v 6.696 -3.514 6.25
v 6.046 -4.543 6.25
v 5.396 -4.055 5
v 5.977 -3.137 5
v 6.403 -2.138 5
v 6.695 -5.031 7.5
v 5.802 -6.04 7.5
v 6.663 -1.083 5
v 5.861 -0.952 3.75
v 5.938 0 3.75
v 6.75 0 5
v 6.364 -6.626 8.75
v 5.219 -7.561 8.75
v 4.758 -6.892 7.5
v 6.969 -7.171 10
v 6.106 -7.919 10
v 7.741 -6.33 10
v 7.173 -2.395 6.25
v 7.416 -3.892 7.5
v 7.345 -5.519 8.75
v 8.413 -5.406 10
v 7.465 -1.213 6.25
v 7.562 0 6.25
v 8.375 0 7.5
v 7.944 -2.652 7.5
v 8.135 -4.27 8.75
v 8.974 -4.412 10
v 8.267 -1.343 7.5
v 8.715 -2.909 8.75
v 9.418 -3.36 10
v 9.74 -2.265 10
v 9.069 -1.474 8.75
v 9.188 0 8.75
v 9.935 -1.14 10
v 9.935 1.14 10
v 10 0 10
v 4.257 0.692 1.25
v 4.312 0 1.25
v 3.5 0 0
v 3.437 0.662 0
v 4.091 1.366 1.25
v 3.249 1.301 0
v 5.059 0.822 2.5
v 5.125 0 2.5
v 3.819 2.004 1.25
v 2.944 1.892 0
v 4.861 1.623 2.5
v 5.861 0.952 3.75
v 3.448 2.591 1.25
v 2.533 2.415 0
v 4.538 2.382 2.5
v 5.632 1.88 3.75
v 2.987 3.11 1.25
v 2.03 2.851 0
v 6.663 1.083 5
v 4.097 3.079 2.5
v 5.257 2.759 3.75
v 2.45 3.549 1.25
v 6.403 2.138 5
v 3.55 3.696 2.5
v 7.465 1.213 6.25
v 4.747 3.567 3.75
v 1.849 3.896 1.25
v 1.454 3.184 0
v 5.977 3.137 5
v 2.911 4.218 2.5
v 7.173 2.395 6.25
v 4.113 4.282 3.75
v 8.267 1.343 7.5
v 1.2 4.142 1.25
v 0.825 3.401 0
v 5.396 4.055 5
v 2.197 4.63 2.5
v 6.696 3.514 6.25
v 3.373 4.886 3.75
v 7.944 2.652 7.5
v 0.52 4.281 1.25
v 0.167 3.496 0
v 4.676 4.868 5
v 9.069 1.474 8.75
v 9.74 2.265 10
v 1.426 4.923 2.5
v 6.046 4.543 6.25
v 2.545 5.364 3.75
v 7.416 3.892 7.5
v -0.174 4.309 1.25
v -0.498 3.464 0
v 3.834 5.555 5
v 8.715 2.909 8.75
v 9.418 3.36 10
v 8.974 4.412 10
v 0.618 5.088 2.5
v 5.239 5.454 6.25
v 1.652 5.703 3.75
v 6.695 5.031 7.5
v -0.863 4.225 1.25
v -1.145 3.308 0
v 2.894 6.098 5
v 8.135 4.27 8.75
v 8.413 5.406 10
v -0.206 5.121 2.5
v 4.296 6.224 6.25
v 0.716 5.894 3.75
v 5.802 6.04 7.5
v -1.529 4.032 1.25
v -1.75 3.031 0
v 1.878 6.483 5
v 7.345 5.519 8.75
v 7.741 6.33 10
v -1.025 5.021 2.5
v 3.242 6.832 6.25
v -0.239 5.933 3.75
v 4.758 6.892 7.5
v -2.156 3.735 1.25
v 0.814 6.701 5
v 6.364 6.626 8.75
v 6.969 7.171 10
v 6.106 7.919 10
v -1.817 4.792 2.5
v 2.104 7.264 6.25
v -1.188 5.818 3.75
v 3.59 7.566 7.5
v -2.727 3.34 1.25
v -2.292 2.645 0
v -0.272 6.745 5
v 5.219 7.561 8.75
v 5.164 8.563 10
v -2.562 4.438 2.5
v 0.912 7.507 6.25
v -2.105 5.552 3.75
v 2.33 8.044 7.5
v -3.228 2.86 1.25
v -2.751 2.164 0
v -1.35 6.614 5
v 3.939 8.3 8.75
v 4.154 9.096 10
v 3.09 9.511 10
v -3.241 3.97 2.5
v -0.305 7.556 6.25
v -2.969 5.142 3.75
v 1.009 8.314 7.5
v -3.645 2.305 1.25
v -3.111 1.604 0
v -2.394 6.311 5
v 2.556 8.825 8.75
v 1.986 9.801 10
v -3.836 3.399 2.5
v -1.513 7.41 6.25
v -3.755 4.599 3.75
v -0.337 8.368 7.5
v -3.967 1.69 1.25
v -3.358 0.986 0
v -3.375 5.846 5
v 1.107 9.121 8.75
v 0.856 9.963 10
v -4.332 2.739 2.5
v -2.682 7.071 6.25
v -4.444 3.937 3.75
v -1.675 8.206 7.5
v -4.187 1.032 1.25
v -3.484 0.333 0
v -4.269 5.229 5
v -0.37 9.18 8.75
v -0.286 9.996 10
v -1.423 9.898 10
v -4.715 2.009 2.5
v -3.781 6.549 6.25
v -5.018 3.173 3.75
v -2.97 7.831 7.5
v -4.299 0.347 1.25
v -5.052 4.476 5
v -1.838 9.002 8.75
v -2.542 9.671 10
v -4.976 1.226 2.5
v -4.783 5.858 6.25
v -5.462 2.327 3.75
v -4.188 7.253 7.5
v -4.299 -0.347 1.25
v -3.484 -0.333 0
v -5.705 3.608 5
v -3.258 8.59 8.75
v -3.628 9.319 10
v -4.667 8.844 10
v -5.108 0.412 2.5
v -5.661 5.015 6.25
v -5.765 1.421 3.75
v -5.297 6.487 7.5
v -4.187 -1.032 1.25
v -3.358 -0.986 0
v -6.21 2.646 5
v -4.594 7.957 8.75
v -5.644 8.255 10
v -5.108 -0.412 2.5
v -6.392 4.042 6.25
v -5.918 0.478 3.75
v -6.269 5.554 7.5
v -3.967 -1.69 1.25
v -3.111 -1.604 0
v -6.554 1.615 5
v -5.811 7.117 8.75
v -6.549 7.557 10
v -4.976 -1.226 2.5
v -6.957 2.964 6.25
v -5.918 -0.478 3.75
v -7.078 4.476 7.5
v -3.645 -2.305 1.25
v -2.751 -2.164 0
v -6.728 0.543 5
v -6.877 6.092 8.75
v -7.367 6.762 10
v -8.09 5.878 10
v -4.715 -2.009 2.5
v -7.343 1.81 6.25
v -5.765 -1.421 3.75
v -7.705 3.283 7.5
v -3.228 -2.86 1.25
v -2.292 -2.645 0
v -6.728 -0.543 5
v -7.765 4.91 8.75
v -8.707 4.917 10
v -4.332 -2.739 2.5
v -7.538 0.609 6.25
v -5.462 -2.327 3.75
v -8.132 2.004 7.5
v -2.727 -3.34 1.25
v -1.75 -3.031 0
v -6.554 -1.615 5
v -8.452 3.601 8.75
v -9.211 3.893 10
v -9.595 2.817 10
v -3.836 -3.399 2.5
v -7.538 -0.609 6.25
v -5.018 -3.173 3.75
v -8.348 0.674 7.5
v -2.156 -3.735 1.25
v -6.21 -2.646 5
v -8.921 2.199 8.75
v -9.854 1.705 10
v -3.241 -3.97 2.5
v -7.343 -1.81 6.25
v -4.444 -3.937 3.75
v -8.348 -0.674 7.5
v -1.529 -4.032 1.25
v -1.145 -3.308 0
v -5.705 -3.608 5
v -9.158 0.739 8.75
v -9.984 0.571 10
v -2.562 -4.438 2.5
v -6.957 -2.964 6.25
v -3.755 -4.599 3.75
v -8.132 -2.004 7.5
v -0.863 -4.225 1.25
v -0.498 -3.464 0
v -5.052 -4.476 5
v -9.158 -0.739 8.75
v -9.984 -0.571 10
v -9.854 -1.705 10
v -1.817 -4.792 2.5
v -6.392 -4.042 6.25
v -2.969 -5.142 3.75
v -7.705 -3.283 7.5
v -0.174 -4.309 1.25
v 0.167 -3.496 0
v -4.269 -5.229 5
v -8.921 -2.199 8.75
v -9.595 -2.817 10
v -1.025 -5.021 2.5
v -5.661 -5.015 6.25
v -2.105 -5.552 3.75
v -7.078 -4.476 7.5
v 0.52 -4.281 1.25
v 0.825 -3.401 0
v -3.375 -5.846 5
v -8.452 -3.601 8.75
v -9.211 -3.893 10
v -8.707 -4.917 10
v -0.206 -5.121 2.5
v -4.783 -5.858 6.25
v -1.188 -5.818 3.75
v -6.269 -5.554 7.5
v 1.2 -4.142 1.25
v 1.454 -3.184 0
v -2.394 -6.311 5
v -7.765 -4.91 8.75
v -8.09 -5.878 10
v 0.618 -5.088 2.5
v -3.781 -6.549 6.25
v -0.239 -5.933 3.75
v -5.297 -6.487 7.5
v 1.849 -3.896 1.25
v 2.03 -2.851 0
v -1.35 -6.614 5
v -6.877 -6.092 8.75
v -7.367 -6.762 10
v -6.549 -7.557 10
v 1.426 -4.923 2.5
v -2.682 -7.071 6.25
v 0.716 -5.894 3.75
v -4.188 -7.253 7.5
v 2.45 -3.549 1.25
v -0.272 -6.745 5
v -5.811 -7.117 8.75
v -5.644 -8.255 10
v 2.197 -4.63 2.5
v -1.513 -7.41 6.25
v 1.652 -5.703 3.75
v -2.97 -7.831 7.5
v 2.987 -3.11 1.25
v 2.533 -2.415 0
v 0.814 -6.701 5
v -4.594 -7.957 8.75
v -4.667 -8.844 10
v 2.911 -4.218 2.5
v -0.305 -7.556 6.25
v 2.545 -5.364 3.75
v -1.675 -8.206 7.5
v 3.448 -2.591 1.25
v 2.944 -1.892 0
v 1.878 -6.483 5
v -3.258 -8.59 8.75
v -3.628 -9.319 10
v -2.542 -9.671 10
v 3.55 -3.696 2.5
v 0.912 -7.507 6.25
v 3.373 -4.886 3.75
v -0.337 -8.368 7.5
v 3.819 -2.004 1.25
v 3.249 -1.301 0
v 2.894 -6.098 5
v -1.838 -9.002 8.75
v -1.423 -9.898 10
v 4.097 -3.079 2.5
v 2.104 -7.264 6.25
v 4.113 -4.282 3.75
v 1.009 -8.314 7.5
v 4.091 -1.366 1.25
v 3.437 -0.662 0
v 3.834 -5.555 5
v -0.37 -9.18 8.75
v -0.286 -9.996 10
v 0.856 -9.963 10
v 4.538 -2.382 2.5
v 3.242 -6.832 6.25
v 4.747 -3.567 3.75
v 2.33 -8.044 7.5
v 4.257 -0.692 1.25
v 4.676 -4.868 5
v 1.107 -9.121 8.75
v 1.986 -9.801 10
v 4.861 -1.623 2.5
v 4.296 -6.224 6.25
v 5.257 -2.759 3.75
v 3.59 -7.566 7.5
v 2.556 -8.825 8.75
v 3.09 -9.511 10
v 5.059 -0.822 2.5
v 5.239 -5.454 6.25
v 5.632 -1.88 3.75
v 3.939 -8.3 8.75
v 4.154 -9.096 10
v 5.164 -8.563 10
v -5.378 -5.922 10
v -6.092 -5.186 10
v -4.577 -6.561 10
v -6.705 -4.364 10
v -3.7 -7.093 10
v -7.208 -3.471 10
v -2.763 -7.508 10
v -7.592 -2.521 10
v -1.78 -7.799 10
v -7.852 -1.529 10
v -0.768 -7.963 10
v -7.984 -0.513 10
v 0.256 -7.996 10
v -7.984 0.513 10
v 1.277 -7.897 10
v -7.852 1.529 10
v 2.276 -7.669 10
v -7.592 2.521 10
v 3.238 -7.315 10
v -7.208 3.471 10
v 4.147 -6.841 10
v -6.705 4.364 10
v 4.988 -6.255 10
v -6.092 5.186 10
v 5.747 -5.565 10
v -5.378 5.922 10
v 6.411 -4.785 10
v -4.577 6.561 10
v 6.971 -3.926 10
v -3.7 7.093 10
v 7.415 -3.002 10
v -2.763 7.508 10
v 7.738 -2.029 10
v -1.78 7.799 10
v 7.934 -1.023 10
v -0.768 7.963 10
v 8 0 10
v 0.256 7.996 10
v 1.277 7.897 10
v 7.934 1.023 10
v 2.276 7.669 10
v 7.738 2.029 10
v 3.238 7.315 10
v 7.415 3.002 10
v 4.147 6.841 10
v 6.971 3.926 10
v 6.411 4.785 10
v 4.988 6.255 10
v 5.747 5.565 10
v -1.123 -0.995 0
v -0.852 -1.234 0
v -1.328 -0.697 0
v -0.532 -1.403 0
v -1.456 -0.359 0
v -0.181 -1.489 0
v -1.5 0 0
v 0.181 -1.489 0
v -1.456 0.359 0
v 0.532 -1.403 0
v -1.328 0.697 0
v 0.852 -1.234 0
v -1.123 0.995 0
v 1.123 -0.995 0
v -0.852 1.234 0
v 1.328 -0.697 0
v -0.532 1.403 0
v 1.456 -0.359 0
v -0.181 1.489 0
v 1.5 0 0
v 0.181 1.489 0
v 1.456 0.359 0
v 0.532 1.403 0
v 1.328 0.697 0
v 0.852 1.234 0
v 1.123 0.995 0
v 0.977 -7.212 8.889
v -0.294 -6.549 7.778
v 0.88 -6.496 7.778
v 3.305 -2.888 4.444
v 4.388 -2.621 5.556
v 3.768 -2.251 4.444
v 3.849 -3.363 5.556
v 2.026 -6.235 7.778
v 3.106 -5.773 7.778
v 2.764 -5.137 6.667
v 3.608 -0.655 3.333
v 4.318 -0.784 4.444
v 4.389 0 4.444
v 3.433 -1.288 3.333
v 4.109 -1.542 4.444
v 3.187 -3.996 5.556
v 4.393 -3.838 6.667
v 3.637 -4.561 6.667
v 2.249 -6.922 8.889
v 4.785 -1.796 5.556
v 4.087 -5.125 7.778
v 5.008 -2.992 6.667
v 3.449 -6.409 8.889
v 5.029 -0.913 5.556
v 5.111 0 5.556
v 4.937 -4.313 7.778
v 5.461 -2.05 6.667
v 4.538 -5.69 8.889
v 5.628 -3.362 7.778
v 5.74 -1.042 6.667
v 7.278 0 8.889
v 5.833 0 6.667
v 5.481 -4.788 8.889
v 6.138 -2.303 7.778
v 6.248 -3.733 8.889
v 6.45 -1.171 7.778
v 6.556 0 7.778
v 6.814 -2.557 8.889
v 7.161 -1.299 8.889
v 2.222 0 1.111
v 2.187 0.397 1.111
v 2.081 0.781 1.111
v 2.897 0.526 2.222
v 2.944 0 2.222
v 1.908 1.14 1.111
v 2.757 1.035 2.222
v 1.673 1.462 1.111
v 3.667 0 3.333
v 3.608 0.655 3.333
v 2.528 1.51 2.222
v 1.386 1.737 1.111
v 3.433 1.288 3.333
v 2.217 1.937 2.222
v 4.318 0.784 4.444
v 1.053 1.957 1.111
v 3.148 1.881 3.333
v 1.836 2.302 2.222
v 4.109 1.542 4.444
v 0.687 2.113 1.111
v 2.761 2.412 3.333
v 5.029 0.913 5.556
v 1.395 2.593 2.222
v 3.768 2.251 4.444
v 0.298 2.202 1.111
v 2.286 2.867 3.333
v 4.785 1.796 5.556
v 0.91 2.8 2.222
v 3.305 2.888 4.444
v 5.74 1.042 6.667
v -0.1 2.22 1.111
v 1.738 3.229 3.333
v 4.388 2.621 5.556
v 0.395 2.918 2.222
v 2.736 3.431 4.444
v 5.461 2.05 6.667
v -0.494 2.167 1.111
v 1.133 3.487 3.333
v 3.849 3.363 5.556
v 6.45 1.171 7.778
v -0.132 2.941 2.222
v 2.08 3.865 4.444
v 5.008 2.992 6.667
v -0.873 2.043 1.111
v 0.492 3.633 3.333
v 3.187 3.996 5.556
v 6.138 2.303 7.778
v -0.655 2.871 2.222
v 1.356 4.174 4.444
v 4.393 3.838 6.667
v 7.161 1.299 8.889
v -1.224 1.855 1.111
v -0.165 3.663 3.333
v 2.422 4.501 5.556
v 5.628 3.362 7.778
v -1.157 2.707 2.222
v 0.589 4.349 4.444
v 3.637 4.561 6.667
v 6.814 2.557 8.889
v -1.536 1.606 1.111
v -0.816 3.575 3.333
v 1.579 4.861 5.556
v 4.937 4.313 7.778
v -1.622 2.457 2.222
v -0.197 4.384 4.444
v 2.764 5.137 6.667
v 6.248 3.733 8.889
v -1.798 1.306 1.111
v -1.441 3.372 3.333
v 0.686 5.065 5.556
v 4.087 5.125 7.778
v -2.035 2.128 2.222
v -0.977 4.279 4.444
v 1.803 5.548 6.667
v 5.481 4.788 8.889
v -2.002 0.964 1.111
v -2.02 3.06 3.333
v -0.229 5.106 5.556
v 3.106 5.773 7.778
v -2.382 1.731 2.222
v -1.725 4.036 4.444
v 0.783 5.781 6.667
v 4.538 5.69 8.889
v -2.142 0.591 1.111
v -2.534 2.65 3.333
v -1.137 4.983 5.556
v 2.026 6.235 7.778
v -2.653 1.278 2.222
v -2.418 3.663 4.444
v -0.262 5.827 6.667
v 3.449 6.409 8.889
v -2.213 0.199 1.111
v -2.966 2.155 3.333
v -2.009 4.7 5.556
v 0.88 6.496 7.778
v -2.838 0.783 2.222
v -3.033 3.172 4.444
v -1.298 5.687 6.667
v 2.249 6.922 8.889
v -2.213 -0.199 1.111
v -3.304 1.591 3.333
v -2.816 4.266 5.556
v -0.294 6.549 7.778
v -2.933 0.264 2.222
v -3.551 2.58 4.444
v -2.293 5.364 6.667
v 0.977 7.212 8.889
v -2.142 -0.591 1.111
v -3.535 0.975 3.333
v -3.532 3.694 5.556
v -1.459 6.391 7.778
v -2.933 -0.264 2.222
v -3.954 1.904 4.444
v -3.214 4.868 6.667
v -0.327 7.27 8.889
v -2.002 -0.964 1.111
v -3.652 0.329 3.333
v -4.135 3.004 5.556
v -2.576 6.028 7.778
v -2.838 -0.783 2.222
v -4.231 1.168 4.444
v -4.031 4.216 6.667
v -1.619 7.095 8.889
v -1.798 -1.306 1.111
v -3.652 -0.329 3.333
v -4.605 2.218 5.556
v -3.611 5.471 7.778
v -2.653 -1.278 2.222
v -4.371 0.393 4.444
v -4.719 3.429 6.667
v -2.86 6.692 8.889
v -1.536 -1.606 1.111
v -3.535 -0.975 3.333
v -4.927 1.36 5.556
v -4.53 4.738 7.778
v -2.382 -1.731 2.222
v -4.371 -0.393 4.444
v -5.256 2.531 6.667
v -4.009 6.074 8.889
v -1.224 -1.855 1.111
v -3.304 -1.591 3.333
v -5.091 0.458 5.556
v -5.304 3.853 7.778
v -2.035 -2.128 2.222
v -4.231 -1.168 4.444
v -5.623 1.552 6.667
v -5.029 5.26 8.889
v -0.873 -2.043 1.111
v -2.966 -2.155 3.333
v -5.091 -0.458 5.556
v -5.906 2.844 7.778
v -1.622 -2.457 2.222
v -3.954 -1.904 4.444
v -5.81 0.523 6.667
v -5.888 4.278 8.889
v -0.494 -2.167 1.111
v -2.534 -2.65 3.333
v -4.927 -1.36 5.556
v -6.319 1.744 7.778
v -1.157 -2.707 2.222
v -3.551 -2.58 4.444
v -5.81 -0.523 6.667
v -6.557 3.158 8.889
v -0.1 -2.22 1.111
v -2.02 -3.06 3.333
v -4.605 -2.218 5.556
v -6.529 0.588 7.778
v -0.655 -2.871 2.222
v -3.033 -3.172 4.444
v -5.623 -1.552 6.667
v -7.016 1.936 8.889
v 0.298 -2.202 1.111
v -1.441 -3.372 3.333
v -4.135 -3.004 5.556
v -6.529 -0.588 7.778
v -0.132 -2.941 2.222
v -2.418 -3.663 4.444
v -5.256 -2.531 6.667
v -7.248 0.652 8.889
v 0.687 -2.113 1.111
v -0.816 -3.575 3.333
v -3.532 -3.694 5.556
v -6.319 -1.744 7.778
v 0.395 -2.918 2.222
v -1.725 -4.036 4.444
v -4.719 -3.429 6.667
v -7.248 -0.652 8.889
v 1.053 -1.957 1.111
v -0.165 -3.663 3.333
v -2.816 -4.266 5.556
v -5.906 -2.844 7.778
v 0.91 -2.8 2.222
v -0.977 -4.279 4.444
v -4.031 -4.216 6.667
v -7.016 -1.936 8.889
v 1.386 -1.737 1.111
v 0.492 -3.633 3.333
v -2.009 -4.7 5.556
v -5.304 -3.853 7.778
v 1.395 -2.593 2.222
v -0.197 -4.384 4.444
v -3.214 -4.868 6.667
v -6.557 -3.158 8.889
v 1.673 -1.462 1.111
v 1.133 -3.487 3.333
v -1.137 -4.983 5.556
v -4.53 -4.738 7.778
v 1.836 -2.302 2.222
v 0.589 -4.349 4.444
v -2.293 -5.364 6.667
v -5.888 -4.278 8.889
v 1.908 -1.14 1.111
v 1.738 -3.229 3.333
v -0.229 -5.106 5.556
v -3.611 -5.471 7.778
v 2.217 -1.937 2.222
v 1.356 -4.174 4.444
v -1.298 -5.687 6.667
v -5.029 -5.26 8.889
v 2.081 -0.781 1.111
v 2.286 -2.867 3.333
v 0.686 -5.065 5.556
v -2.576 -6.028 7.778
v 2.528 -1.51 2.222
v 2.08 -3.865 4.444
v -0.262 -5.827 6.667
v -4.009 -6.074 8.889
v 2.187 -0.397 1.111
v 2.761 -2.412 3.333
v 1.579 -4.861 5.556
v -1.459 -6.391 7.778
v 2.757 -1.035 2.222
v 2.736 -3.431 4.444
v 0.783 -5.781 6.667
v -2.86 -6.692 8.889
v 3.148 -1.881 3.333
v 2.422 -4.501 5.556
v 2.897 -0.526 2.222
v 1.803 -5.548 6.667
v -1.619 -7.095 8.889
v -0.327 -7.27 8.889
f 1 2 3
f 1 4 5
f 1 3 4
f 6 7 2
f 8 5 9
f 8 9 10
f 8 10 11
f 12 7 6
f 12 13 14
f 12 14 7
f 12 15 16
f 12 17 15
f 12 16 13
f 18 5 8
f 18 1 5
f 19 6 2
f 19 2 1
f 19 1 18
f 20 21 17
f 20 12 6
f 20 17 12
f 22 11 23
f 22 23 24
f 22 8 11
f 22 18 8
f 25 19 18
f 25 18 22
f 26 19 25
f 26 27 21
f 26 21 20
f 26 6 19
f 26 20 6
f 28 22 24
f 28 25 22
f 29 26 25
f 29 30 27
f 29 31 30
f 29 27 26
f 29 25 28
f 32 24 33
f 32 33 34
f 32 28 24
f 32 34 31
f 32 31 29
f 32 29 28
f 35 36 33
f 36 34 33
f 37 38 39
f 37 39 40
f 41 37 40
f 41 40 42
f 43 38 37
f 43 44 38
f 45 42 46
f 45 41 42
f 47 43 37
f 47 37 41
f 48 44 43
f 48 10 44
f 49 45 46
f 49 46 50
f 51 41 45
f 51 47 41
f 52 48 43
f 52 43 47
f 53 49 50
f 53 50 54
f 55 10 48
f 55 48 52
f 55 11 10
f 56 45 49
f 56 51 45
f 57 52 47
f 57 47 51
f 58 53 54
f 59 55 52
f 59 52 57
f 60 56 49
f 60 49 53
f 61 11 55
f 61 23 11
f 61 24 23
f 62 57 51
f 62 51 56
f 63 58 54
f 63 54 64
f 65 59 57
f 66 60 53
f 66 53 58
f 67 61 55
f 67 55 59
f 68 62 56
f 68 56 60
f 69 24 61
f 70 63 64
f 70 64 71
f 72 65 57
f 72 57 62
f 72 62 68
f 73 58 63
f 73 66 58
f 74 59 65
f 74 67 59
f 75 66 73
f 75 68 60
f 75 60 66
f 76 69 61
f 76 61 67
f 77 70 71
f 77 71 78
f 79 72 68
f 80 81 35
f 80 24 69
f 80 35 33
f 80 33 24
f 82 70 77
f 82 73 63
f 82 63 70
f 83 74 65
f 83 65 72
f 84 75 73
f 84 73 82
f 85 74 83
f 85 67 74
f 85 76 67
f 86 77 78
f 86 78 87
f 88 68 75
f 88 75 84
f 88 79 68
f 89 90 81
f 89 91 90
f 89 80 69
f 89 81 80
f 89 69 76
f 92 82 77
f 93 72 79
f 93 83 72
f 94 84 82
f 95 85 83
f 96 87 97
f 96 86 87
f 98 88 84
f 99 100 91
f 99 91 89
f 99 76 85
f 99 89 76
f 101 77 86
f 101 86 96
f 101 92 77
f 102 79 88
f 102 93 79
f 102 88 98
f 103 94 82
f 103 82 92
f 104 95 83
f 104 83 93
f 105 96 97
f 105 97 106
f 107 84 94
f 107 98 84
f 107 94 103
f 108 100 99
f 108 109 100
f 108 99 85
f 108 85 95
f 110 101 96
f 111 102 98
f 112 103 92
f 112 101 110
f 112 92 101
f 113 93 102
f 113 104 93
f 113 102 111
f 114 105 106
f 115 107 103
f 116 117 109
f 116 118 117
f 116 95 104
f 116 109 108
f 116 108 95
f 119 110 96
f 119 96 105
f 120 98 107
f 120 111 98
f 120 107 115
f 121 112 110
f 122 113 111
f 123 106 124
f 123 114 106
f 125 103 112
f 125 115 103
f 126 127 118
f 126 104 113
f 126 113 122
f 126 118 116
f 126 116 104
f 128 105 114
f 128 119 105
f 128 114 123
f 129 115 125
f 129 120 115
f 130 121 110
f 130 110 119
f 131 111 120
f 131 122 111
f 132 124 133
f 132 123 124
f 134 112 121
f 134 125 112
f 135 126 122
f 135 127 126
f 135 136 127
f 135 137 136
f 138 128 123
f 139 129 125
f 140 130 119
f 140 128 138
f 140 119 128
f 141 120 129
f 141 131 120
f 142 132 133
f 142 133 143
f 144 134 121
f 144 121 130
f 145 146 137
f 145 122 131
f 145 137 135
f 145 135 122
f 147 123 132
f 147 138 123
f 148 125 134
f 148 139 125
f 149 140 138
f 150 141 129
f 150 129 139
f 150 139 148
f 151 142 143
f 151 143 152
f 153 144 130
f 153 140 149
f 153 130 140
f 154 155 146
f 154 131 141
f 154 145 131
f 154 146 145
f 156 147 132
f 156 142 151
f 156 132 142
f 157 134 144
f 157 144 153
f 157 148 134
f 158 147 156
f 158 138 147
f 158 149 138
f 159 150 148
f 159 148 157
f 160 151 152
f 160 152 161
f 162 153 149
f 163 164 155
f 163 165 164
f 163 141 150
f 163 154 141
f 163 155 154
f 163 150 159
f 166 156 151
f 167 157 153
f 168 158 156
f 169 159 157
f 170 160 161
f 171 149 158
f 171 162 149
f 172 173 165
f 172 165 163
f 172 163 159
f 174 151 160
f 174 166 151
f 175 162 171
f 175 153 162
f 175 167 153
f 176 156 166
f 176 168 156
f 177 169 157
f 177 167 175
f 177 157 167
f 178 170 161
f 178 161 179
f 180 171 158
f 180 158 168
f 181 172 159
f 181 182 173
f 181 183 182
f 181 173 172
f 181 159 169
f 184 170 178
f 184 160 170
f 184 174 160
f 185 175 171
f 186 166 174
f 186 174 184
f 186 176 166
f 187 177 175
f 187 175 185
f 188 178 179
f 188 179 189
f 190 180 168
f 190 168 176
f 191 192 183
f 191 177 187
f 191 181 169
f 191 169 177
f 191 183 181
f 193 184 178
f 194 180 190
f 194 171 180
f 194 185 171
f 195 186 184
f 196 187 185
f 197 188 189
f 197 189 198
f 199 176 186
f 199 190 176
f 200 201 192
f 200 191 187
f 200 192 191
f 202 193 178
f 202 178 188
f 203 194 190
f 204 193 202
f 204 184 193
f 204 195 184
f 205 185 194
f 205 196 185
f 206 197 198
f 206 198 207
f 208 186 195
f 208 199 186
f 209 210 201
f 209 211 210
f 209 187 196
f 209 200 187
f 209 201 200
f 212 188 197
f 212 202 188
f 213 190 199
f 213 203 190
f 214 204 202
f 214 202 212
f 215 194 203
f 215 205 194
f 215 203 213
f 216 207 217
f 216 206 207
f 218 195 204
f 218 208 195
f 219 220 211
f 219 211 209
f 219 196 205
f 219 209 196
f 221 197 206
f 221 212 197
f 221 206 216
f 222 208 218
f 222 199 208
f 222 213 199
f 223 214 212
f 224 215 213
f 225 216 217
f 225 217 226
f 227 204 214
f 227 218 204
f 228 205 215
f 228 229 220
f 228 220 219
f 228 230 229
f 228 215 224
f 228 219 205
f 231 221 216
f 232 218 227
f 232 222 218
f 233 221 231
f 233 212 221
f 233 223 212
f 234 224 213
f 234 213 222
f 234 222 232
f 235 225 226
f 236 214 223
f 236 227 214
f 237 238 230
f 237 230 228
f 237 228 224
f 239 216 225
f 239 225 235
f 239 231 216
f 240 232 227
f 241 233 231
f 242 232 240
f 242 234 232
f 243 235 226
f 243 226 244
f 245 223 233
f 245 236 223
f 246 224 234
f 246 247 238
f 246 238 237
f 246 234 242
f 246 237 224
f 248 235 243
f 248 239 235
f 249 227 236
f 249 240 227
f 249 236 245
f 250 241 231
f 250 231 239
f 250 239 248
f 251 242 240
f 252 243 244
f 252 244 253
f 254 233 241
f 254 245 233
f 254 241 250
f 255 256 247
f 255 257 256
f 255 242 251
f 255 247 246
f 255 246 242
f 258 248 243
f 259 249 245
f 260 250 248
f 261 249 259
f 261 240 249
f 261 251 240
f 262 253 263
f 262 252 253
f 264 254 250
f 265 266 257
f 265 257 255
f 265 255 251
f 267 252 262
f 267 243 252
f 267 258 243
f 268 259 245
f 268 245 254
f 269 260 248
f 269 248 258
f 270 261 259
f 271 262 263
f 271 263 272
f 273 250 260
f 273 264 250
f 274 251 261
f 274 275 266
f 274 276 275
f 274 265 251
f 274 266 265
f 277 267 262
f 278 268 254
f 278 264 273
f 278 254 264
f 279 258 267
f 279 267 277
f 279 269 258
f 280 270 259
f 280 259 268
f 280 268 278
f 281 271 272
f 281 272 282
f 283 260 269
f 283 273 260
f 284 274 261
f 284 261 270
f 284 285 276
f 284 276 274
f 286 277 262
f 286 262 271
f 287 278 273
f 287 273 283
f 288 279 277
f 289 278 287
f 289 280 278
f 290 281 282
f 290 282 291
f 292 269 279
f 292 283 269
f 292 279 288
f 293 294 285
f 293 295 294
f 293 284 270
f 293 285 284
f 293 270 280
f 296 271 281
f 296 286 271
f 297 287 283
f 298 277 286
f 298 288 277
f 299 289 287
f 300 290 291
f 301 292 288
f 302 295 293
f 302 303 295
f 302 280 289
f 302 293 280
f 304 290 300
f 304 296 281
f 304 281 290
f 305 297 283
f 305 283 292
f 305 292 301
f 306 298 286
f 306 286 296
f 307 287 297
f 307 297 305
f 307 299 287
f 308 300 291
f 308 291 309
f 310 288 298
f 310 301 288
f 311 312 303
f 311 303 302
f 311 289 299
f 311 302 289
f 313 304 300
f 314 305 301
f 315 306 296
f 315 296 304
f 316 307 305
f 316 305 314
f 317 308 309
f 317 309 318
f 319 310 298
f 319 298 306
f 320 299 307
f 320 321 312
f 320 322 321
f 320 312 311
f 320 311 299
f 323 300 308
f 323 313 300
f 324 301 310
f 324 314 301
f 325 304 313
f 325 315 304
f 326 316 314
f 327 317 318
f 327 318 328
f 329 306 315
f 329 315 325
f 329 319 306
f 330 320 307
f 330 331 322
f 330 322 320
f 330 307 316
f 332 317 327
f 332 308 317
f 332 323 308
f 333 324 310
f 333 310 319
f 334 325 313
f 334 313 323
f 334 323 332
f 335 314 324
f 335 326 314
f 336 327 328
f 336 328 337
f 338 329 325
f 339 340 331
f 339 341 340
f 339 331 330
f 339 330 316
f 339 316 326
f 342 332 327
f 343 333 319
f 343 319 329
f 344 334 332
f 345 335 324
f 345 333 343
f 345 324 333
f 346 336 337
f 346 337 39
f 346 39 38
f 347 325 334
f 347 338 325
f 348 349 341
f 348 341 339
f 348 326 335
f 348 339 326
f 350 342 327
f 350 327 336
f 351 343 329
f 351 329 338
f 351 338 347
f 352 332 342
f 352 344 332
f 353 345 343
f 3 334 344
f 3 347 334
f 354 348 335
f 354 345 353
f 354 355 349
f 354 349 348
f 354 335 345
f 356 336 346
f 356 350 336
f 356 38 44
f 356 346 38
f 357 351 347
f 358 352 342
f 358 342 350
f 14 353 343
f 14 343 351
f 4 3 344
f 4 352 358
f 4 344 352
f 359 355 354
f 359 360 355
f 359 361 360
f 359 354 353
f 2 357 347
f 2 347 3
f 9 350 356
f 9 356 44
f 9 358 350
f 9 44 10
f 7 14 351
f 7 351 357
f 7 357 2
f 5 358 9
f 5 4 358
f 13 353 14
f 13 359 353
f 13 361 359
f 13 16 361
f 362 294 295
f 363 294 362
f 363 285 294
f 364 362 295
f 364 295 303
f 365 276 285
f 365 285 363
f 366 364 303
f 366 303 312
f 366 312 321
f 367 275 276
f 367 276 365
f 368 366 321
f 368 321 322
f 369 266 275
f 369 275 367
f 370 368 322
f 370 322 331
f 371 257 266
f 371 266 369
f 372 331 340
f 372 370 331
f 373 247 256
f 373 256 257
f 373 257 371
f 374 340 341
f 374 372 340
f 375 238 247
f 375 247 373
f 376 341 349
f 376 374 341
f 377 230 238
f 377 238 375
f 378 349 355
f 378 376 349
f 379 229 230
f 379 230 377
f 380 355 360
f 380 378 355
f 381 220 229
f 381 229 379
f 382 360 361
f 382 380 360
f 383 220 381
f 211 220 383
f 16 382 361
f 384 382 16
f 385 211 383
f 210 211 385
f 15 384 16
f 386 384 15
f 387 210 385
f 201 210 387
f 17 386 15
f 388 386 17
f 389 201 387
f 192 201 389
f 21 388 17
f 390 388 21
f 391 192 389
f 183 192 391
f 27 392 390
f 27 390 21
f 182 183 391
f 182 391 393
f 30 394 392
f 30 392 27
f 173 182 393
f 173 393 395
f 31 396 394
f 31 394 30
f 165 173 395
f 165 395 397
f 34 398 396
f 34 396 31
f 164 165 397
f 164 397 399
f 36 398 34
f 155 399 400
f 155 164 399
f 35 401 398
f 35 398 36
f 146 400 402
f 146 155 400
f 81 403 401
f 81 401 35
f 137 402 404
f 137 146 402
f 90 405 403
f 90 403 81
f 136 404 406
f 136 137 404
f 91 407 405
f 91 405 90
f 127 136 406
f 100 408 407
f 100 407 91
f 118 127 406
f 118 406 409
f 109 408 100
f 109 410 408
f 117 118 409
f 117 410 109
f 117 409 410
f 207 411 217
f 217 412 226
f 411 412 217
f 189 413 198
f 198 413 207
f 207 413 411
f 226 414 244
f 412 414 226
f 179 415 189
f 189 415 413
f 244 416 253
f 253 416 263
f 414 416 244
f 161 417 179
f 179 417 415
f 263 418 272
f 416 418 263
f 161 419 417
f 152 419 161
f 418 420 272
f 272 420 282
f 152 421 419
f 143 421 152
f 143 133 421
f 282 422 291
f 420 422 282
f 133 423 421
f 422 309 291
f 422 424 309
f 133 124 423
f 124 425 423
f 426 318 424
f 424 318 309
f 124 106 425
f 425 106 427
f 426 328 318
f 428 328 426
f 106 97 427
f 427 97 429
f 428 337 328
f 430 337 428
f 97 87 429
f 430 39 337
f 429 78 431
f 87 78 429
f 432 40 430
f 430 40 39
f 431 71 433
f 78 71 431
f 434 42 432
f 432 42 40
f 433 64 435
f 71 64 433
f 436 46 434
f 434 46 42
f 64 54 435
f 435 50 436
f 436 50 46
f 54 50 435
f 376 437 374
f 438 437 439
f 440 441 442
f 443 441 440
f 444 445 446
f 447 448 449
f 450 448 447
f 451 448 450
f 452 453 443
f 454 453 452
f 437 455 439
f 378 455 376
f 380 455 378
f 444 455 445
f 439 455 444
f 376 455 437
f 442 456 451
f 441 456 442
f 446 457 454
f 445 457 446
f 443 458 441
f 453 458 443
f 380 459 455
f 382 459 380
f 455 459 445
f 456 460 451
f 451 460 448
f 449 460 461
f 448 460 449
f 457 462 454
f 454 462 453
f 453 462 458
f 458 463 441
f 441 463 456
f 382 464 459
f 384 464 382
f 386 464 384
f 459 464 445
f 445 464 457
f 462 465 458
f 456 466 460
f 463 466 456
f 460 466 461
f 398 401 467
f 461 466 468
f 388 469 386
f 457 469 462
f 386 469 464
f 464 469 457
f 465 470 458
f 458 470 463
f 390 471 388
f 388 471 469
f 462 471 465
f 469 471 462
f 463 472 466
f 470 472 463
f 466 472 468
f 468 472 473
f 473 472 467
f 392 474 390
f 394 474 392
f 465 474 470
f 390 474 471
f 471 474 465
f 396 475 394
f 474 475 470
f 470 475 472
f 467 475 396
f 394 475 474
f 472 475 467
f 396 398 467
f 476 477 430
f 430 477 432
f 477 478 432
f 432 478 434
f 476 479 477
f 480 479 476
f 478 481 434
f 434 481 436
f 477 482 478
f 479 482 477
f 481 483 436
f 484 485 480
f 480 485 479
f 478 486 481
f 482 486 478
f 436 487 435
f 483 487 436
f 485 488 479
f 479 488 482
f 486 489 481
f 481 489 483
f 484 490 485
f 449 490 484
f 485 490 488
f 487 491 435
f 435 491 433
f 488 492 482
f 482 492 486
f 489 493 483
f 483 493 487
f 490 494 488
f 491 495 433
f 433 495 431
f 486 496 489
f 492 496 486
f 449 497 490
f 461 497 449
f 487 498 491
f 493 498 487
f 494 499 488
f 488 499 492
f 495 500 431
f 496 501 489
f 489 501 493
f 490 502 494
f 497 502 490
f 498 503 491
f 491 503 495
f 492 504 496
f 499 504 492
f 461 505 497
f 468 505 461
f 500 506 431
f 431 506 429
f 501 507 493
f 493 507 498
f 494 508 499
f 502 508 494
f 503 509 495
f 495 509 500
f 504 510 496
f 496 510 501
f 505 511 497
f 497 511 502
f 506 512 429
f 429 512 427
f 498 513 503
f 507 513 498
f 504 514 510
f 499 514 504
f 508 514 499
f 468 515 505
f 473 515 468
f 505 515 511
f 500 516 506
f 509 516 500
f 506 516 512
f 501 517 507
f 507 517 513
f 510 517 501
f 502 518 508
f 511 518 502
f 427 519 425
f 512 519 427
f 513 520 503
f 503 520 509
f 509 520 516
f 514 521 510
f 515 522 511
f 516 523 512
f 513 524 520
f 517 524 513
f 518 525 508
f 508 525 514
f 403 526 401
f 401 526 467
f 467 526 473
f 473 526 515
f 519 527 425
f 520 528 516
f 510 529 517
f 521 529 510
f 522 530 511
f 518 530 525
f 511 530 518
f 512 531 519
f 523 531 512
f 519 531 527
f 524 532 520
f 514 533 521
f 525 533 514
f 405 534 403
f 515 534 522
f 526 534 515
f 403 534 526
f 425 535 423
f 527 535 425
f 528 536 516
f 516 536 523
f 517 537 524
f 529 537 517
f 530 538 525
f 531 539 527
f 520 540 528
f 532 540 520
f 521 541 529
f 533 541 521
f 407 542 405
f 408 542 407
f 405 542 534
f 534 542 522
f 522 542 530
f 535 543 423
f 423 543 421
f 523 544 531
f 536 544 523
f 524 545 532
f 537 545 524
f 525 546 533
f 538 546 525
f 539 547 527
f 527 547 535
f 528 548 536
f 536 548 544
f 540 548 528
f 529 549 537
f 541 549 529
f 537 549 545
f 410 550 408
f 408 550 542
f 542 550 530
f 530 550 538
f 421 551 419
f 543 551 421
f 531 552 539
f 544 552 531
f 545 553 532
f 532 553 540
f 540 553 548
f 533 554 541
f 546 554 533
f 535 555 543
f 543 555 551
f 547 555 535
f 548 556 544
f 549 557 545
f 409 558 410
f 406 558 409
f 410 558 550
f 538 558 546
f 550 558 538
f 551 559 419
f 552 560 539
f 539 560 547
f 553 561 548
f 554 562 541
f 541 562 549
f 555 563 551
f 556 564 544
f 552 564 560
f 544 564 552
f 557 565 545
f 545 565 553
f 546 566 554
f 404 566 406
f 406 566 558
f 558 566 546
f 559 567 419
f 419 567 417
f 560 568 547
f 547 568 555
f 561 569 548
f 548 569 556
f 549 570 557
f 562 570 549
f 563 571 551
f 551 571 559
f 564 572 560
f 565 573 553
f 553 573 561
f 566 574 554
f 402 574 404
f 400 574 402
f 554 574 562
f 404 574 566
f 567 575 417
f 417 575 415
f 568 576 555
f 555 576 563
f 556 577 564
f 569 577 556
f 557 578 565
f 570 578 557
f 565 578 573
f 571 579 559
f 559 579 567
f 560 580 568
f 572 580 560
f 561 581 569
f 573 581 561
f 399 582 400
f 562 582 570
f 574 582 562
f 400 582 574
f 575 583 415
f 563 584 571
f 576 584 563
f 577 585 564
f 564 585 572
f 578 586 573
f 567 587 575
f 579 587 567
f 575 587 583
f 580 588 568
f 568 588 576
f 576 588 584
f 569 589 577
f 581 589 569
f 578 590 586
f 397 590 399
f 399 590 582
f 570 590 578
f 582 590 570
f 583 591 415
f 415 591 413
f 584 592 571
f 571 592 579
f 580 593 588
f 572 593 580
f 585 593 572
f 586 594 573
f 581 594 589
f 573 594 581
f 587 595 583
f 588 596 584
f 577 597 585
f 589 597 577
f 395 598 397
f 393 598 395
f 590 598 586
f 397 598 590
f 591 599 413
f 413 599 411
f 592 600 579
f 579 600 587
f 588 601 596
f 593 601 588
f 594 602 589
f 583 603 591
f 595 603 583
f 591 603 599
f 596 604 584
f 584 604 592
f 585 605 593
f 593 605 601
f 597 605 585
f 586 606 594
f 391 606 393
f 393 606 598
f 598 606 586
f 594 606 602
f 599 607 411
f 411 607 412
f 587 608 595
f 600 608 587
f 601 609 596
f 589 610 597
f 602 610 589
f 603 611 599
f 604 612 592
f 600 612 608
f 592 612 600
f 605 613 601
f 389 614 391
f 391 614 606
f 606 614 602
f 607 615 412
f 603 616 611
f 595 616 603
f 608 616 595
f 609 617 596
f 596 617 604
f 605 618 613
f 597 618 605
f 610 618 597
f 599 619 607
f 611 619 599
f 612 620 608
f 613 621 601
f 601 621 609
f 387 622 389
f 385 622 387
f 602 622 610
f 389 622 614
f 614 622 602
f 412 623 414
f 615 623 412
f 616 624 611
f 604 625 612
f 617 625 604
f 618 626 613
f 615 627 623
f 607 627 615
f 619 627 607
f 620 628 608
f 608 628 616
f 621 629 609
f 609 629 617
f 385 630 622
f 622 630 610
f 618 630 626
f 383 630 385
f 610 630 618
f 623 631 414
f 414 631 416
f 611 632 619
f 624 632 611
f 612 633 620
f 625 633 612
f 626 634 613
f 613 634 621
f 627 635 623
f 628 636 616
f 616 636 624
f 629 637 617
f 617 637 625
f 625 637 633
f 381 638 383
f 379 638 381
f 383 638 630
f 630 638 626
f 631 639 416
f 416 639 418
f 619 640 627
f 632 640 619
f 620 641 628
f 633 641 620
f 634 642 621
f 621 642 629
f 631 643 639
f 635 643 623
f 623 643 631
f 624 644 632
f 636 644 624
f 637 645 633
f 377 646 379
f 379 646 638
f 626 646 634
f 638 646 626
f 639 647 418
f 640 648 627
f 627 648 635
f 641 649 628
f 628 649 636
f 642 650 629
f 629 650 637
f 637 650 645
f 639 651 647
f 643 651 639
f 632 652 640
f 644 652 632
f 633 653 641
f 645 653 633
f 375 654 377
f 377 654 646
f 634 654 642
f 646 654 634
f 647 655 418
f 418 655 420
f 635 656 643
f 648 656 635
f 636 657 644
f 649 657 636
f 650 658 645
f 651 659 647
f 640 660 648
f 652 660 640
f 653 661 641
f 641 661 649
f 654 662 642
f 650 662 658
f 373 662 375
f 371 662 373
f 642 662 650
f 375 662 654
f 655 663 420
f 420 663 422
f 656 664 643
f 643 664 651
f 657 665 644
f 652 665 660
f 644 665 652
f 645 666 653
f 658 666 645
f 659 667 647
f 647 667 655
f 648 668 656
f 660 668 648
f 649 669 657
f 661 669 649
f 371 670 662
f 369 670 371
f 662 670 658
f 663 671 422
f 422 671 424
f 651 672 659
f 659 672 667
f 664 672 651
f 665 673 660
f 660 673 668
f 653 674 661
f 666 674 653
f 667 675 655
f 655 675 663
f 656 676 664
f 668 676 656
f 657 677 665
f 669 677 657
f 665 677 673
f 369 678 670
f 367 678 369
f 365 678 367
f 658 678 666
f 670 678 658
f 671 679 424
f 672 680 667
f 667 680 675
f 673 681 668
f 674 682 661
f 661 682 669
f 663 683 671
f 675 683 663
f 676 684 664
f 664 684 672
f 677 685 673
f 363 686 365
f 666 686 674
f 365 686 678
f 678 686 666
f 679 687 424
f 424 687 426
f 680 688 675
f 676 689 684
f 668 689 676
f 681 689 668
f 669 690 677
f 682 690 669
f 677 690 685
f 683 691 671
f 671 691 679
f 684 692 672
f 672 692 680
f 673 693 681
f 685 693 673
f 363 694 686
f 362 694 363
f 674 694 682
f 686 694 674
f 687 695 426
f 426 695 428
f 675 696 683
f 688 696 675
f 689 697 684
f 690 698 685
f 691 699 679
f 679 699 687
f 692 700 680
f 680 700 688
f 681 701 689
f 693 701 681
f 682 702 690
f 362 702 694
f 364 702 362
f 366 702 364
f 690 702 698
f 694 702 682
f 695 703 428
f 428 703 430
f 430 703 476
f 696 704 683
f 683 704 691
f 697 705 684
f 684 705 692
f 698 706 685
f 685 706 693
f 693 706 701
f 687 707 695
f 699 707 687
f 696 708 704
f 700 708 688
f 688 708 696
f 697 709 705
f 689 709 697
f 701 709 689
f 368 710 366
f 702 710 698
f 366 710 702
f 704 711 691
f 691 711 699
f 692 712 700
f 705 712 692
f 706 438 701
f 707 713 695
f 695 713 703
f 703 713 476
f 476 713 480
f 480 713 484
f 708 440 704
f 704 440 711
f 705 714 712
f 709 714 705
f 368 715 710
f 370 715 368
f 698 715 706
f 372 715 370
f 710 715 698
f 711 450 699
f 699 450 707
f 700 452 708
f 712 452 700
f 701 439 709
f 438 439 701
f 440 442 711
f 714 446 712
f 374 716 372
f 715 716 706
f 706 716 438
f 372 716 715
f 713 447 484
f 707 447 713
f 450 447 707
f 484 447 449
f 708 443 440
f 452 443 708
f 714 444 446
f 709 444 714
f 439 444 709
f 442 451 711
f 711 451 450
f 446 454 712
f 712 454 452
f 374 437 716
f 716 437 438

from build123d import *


with BuildPart() as screwshape:
    # Cone001 → Cone001 (revolve)
    with BuildSketch(Plane.XZ):
        Polygon((0, 0), (1.5, 0), (8, 10), (0, 10), align=None)
    revolve(axis=Axis((0, 0, 0), (0, 0, 1)))


with BuildPart() as coneforservoholder:
    # Cone → Cone (revolve)
    with BuildSketch(Plane.XZ):
        Polygon((0, 0), (3.5, 0), (10, 10), (0, 10), align=None)
    revolve(axis=Axis((0, 0, 0), (0, 0, 1)))

    # Cut: cut screwShape
    add(screwshape.part, mode=Mode.SUBTRACT)


solid = coneforservoholder.part
